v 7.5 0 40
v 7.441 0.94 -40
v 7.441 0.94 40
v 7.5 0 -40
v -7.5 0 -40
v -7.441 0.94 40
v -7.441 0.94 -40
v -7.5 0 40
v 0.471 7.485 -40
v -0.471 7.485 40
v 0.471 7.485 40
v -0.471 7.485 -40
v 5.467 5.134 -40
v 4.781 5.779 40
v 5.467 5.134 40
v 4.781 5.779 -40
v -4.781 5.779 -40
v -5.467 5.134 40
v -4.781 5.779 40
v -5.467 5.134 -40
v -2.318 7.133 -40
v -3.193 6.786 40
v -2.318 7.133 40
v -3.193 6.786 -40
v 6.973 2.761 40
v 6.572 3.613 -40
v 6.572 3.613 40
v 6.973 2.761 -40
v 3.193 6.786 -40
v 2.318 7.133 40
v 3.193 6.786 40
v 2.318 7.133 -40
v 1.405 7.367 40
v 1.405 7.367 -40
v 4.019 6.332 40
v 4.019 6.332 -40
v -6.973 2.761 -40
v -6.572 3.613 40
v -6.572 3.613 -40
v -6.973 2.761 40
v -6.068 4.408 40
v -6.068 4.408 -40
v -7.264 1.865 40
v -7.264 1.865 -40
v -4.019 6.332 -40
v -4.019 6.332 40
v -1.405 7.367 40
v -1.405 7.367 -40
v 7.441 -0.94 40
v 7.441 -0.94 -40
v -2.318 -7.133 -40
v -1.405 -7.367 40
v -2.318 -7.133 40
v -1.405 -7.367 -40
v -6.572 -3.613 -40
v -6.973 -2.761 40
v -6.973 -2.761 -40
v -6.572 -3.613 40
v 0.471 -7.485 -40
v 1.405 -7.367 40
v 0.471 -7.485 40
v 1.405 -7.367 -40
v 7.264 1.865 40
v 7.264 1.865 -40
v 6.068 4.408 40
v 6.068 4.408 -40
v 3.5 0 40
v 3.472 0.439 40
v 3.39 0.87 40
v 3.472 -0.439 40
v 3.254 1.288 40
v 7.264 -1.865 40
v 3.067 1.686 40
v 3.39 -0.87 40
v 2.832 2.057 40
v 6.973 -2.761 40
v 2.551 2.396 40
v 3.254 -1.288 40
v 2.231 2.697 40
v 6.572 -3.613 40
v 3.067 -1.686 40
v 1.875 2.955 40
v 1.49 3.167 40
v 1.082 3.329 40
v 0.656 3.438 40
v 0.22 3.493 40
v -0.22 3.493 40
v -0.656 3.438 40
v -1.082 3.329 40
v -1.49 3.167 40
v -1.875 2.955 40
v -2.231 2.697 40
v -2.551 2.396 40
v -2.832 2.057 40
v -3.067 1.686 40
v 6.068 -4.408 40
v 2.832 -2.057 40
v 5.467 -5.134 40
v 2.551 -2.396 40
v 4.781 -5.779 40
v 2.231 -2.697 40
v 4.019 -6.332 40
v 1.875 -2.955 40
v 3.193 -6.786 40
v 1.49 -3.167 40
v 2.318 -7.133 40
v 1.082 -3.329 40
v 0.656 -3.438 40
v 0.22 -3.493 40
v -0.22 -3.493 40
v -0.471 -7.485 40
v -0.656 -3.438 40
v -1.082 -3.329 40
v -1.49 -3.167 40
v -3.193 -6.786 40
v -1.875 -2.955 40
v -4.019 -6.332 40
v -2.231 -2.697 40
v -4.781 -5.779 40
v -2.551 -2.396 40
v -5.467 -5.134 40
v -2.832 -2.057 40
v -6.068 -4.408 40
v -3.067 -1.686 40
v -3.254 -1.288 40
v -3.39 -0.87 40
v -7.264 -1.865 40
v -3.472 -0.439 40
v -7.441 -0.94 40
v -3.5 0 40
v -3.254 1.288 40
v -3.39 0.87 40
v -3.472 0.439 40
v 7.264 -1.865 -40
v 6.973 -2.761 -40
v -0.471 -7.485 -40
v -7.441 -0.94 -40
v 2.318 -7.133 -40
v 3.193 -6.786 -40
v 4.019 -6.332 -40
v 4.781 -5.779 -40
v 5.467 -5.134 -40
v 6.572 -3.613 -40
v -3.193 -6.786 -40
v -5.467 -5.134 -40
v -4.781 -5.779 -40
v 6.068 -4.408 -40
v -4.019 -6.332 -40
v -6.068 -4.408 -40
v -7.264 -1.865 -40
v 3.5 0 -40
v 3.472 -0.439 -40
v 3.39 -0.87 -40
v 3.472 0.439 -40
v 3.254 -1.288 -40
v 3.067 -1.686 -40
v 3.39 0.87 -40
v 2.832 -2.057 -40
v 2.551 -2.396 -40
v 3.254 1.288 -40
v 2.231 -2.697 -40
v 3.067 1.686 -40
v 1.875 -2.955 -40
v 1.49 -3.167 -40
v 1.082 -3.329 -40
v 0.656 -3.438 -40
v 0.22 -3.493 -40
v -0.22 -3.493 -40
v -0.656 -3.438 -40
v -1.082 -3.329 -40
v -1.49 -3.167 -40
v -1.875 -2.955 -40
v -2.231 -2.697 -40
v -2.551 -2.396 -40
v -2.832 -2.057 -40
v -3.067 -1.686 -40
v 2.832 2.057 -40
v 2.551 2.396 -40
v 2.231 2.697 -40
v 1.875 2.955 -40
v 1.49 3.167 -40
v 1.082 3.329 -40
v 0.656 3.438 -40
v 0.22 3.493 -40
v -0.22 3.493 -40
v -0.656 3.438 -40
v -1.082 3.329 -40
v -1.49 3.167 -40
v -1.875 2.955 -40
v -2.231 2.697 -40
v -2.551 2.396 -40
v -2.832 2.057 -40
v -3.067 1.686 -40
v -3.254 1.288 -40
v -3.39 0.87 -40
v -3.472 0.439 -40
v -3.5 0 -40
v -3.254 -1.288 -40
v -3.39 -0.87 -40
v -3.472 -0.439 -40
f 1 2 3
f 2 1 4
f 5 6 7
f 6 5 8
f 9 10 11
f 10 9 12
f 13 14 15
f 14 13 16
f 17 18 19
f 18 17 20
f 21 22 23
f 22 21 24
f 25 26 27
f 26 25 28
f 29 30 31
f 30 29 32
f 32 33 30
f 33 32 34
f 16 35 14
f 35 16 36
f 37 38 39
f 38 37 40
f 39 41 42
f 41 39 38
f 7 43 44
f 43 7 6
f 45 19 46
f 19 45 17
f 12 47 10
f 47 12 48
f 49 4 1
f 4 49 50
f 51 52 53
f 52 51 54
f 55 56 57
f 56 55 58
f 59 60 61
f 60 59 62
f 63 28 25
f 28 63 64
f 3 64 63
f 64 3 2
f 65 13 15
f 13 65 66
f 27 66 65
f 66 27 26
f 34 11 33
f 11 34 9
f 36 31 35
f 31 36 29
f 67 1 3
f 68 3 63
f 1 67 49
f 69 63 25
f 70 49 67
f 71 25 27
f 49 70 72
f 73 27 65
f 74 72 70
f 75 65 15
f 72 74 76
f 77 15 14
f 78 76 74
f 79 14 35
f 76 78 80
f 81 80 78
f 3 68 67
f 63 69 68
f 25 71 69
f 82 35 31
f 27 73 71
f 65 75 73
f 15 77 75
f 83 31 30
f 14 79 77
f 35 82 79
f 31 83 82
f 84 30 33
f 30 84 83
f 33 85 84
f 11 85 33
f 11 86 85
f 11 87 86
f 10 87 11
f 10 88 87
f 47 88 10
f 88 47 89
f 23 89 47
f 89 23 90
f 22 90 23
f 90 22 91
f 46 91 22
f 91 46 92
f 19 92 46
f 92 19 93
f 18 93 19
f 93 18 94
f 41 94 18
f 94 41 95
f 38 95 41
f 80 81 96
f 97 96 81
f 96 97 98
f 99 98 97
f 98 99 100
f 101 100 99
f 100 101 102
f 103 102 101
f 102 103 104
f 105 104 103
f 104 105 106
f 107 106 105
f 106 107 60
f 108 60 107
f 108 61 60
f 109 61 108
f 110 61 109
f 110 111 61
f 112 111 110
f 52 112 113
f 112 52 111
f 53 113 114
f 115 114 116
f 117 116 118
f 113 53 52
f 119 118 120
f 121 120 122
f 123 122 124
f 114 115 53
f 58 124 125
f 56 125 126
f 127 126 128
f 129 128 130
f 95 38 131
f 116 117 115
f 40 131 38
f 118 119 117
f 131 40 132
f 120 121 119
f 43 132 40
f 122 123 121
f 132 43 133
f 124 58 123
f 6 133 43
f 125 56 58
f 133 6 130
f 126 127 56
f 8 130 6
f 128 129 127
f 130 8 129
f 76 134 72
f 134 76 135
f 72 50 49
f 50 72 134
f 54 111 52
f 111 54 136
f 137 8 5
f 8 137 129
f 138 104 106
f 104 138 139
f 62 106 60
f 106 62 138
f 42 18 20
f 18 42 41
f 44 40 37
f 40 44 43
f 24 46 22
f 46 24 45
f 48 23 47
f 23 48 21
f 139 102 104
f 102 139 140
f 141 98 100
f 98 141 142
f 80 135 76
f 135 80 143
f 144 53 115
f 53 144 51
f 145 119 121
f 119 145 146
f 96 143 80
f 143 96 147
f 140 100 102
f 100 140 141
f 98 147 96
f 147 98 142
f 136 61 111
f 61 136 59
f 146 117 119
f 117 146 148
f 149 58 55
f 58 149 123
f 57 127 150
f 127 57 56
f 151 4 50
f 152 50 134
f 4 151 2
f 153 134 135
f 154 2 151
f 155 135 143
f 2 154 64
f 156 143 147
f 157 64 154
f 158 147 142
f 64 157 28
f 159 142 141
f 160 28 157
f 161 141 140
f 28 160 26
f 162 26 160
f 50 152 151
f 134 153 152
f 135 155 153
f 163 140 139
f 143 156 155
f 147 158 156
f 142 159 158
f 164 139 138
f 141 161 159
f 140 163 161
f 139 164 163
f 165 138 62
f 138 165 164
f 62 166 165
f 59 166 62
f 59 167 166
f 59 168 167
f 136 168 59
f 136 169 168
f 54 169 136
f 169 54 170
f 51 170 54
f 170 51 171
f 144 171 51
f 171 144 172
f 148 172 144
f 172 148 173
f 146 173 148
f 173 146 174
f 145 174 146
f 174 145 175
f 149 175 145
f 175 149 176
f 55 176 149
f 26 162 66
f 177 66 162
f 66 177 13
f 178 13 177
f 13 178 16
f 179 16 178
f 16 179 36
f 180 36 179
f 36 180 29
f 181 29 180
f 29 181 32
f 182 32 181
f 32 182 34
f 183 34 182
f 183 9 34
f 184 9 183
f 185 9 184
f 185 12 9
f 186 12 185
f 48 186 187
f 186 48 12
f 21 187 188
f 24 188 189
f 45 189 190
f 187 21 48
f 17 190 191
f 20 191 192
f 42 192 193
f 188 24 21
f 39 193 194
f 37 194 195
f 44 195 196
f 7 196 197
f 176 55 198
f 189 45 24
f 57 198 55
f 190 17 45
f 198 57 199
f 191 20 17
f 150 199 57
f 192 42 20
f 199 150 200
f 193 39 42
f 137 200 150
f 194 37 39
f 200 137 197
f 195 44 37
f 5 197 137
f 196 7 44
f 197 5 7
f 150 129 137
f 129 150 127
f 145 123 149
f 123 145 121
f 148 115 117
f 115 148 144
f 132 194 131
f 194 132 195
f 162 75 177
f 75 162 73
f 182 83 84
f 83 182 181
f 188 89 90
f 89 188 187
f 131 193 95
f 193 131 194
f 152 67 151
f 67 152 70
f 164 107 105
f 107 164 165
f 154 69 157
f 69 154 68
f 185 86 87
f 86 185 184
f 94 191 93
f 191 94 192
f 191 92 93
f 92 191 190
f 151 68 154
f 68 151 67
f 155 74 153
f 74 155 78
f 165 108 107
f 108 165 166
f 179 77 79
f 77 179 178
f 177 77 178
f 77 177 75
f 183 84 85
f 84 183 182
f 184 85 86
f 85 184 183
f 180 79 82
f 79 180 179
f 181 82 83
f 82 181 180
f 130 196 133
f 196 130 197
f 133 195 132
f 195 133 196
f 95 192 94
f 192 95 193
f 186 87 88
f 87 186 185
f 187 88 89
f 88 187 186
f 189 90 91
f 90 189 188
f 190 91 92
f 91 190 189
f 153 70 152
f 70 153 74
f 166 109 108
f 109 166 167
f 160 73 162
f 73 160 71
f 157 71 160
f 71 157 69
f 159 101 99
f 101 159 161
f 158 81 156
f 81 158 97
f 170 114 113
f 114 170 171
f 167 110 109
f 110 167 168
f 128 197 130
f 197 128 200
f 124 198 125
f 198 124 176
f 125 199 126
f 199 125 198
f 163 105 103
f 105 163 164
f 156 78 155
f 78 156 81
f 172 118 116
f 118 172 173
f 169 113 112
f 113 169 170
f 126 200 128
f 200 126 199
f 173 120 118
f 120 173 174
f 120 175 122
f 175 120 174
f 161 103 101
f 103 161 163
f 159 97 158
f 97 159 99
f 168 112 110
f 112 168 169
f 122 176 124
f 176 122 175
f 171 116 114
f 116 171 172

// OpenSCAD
$fn = 50;


difference() {
	union() {
		translate(v = [0, 0, -40.0000000000]) {
			cylinder(h = 80, r = 7.5000000000);
		}
	}
	union() {
		translate(v = [0, 0, -100.0000000000]) {
			cylinder(h = 200, r = 3.5000000000);
		}
	}
}
